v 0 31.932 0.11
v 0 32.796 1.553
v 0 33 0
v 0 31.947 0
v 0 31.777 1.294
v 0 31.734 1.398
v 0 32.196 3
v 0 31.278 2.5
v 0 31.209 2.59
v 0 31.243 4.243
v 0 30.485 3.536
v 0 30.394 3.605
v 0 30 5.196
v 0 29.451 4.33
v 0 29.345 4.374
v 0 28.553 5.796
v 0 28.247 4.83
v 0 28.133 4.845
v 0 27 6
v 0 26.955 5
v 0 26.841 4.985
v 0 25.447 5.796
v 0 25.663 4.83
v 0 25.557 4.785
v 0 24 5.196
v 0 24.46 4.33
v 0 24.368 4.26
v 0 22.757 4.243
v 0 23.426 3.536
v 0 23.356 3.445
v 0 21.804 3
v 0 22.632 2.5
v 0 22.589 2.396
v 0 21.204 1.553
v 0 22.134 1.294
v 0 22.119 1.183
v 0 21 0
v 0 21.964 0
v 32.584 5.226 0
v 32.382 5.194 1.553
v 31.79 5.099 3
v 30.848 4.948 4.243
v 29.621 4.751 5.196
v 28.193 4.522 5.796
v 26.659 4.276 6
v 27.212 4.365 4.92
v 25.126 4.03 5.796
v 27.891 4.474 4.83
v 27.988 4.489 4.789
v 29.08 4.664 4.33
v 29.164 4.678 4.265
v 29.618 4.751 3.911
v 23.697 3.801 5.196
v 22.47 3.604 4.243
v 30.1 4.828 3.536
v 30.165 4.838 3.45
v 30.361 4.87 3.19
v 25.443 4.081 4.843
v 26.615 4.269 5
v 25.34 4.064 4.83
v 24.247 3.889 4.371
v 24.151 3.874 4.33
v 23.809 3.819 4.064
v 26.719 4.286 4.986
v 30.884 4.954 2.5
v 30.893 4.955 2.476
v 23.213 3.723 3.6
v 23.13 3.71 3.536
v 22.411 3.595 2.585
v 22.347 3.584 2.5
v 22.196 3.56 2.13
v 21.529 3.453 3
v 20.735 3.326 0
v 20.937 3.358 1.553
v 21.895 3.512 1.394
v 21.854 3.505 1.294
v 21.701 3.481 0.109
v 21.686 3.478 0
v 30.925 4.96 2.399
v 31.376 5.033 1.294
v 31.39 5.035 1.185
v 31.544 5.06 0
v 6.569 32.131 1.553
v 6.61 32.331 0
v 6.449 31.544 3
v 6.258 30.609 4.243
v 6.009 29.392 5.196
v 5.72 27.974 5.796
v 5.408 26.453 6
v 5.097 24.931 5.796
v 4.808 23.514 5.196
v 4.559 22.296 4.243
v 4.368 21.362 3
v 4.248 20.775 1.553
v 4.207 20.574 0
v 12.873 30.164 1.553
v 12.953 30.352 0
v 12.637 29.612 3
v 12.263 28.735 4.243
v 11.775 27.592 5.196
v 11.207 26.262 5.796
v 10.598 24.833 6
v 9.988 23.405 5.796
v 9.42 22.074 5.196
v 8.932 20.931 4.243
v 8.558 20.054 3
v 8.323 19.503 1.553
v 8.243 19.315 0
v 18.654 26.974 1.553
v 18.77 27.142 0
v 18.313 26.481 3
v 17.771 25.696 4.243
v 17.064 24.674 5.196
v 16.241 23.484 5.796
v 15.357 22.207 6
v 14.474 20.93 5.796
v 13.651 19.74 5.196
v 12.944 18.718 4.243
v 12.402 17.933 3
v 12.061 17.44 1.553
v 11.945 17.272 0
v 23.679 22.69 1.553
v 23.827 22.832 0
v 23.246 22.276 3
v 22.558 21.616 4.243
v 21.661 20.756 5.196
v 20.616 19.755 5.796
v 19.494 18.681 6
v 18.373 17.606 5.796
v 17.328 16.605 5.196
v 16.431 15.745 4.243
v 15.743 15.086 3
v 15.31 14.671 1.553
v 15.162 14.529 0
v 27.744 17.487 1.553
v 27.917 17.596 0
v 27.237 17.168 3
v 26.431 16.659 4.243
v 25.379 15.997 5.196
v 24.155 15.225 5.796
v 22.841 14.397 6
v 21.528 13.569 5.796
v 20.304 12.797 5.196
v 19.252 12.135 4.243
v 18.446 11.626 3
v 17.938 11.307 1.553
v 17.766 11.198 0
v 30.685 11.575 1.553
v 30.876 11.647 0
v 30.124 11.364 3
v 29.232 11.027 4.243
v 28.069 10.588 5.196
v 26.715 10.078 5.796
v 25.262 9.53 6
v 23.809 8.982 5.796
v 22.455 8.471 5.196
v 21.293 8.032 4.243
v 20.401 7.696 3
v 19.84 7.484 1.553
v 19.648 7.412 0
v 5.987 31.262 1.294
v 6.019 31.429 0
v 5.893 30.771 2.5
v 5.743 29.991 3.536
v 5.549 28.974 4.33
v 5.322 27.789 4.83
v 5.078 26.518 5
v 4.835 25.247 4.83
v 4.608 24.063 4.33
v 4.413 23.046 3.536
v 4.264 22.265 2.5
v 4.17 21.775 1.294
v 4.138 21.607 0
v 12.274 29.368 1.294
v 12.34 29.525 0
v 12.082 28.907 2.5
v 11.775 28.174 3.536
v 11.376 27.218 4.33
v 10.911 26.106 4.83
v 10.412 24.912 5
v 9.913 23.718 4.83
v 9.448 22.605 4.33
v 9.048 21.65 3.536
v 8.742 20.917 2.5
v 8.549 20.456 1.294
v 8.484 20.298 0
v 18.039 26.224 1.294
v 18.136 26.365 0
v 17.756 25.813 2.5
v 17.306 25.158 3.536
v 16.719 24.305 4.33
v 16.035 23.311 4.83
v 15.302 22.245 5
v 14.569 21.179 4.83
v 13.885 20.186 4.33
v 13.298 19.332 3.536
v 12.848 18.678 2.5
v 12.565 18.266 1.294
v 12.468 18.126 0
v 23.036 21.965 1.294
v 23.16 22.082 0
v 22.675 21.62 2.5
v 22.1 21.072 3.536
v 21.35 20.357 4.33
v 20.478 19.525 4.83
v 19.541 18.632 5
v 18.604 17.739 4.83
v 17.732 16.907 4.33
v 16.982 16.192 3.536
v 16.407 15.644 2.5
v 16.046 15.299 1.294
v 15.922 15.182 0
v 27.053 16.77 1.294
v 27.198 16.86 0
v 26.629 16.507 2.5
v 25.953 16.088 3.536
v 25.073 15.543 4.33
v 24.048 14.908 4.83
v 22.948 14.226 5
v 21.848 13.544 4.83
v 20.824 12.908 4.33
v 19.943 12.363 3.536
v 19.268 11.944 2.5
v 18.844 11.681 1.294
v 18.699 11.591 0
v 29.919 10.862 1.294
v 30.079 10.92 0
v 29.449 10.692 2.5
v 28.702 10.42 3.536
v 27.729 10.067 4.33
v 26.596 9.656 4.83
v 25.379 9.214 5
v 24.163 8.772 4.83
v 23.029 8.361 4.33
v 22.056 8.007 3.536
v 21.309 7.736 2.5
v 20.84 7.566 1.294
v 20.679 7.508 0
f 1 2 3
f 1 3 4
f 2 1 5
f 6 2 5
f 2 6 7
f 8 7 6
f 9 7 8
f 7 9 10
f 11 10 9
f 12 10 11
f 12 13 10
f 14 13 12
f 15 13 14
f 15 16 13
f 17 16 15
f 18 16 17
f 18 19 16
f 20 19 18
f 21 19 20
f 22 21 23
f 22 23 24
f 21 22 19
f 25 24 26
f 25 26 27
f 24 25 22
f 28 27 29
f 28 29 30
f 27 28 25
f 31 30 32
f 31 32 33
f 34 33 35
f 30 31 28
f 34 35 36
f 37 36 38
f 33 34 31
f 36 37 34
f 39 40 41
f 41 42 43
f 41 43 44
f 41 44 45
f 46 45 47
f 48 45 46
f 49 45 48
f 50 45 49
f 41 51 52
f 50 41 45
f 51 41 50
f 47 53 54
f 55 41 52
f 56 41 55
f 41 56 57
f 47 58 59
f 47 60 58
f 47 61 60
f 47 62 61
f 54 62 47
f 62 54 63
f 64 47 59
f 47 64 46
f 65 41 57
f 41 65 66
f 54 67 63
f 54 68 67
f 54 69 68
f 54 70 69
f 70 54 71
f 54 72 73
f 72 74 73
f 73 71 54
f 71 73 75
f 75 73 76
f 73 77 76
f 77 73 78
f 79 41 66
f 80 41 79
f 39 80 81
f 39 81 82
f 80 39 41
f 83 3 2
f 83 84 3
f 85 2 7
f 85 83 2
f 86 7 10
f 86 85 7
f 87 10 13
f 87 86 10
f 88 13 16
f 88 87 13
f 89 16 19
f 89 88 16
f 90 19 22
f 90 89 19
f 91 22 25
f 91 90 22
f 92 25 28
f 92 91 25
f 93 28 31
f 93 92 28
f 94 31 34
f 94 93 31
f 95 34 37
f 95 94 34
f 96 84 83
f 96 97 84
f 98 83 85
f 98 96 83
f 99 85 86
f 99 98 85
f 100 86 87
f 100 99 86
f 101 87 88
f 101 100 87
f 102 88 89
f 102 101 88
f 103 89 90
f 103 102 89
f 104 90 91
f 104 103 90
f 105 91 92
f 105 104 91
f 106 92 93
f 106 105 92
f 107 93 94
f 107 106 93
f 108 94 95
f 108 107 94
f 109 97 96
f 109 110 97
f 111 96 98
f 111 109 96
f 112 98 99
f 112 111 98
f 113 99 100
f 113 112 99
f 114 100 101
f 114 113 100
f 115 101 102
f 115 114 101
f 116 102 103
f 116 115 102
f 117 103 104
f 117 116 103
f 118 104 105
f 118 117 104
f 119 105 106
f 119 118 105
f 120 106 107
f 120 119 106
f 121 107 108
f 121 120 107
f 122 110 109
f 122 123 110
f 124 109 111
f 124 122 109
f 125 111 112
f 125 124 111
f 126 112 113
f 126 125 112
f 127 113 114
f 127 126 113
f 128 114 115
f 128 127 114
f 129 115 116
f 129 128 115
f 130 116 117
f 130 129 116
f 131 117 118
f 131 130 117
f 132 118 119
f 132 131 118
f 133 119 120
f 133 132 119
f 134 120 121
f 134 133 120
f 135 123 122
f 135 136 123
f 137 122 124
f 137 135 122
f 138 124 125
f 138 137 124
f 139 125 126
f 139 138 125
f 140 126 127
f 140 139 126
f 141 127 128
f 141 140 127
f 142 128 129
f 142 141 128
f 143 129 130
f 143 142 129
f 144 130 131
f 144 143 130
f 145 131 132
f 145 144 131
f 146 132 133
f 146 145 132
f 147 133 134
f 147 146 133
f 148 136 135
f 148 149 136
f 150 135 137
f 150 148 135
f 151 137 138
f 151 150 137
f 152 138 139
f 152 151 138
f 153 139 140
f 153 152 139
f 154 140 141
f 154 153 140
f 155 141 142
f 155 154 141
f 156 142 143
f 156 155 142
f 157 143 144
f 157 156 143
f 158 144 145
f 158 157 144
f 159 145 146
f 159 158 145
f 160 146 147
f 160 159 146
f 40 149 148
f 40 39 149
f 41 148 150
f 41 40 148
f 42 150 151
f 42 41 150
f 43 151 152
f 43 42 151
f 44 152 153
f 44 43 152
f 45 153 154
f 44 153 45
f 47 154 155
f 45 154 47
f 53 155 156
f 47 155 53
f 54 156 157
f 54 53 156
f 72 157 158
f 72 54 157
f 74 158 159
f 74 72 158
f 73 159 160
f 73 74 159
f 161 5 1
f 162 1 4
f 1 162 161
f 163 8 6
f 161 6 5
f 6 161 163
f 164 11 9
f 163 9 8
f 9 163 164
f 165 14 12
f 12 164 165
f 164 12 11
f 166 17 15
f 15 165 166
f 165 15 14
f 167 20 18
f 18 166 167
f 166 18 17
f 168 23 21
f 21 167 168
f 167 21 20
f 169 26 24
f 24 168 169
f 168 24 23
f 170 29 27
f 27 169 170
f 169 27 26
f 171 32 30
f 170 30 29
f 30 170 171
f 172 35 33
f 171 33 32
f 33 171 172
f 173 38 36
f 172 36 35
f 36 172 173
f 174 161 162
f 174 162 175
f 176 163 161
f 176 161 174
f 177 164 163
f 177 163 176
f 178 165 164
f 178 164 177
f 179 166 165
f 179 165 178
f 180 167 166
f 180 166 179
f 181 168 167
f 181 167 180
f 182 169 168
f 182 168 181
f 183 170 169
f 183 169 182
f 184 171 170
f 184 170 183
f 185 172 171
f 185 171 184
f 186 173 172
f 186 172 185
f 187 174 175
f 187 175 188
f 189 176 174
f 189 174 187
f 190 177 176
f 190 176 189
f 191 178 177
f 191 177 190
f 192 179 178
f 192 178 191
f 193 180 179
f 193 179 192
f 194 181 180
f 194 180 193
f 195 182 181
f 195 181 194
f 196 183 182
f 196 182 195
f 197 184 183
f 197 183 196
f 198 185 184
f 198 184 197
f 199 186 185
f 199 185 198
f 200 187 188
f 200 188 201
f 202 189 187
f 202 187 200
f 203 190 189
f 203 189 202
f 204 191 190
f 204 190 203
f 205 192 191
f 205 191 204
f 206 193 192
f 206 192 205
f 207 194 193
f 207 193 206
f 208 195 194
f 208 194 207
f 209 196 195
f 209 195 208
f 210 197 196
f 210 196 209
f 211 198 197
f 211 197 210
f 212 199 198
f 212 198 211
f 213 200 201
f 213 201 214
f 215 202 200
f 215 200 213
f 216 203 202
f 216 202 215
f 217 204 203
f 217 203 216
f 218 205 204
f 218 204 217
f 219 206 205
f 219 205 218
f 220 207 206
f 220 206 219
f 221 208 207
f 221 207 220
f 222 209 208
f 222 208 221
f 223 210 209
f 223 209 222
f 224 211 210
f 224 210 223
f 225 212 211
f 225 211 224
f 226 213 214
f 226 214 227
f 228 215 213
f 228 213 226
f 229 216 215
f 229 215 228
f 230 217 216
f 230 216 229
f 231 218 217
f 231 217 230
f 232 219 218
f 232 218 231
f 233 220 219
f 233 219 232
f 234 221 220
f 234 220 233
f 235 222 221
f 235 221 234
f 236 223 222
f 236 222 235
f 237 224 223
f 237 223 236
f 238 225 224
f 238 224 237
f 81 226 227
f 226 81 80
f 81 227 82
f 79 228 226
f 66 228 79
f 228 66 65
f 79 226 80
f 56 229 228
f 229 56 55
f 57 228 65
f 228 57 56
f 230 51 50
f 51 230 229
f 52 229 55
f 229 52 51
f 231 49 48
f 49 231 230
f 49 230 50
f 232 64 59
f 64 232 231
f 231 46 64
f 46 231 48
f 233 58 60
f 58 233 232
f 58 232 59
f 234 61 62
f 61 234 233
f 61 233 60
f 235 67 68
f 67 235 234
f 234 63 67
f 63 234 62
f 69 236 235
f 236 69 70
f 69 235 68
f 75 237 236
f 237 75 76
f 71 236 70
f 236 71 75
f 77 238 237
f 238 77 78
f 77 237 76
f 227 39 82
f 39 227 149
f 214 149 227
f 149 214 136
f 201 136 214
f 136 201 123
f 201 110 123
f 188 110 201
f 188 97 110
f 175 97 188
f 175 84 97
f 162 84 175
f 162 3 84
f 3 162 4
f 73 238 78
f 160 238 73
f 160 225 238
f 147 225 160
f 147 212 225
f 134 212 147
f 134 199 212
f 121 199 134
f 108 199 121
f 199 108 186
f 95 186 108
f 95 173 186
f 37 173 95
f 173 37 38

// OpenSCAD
// file: ../build_environments.scad
// build_environments.scad: modules to build level sections
//

module pool(diameter=10.0, wall_height=2.0, step_width=3.0, connections=[])
{
    difference() {
        union() {
        difference() {
            cylinder(h=0.5,r1=diameter+step_width,r2=diameter+step_width,$fn=48);
            translate([0,0,-0.1])
                cylinder(h=0.7,r1=diameter,r2=diameter,$fn=48);
        }
        difference() {
            cylinder(h=wall_height,r1=diameter+step_width+1.0,r2=diameter+step_width+1.0,$fn=48);
            translate([0,0,-0.1])
                cylinder(h=wall_height+0.2,r1=diameter+step_width,r2=diameter+step_width,$fn=48);
        }
        }
    
        for (c = connections)
        {
            rotate([0,90,0]) {
                angle = atan2(c[1],c[0]);
                rotate([-angle,0,0]) {
                    cylinder(h=diameter+5.0,r1=c[2],r2=c[2],$fn=48);
                }
            }
        }
    }
}

module straight(length=10.0, width=2.0, dy1=0.0, dy2=0.0, dz=0.0)
{
    dims = [0, 0, 0, 0, 0, (dz/length)];
    matrix = [
        [ 1, dims[0], dims[1], 0 ],
        [ dims[2], 1, dims[4], 0 ],
        [ dims[5], dims[3], 1, 0 ],
        [ 0, 0, 0, 1 ]
    ];
    multmatrix(matrix)
    difference() {
        translate([dy1,0,0])
        union() {
            rotate([0,90,0]) {
                difference() {
                    cylinder(h=(length-dy1-dy2),r1=width+1.0,r2=width+1.0,$fn=24);
                    translate([0,0,-0.1])
                        cylinder(h=(length-dy1-dy2+0.2),r1=width,r2=width,$fn=24);
                }
                difference() {
                    cylinder(h=1.0,r1=width+2.0,r2=width+2.0,$fn=24);
                    translate([0,0,-0.1])
                        cylinder(h=1.2,r1=width,r2=width,$fn=24);
                }
                translate([0,0,(length-dy1-dy2)-1.0]) {
                    difference() {
                        cylinder(h=1.0,r1=width+2.0,r2=width+2.0,$fn=24);
                        translate([0,0,-0.1])
                            cylinder(h=1.2,r1=width,r2=width,$fn=24);
                    }
                }
            }
        }
        translate([0,0,-(2*width+4.0)/2])
            cube([3*length,3*length,2*width+4.0],center=true);
    }
}

module curve(p0=[0,0], center=[0,0], dir=1, angle=0.0, width=2.0)
{
    radius = sqrt((p0[0]-center[0])*(p0[0]-center[0]) + (p0[1]-center[1])*(p0[1]-center[1]));
    if (dir == 0) {
        difference() {
            rotate([0,0,-90])
            difference() {
                rotate_extrude(angle = angle, convexity = 10, $fn=32)
                    translate([radius, 0, 0])
                        circle(r = width+1.0,$fn=24);
                rotate([0,0,-1.0])
                    rotate_extrude(angle = angle+2.0, convexity = 10, $fn=32)
                        translate([radius, 0, 0])
                            circle(r = width,$fn=24);
            }
            translate([0,0,-(2*width+4.0)/2])
                cube([5*radius,5*radius,2*width+4.0],center=true);
        }
    }
    else {
        difference() {
            rotate([0,0,90])
            difference() {
                rotate_extrude(angle = -angle, convexity = 10, $fn=32)
                    translate([radius, 0, 0])
                        circle(r = width+1.0,$fn=24);
                rotate([0,0,1.0])
                    rotate_extrude(angle = -angle-2.0, convexity = 10, $fn=32)
                        translate([radius, 0, 0])
                            circle(r = width,$fn=24);
            }
            translate([0,0,-(2*width+4.0)/2])
                cube([5*radius,5*radius,2*width+4.0],center=true);
        }
    }

}

// test pool
//pool(diameter=12.0000, wall_height=3.0000, step_width=3.0000, connections=[[0.0000,-26.0000,2.0000], [23.6074,0.0000,2.0000]]);

// test straight, slope
//straight(length=26.0000, width=2.0000, dy1=11.8322, dy2=6.7082, dz=0.0000);
//straight(length=29.1549, width=12.0000, dy1=0.0000, dy2=0.0000, dz=-15.0000);

// test curve
//curve(p0=[23.6074, 0.0000], center=[23.6074, 5.0000], dir=0, angle=60.1011, width=2.0000);
//curve(p0=[33.6426, 12.4219], center=[37.9771, 9.9295], dir=1, angle=120.4627, width=2.0000);
// main file
use <../build_environments.scad>;
curve(p0=[-0.3461, -168.9401], center=[-27.3457, -168.7916], dir=1, angle=80.8875, width=5.0000);
